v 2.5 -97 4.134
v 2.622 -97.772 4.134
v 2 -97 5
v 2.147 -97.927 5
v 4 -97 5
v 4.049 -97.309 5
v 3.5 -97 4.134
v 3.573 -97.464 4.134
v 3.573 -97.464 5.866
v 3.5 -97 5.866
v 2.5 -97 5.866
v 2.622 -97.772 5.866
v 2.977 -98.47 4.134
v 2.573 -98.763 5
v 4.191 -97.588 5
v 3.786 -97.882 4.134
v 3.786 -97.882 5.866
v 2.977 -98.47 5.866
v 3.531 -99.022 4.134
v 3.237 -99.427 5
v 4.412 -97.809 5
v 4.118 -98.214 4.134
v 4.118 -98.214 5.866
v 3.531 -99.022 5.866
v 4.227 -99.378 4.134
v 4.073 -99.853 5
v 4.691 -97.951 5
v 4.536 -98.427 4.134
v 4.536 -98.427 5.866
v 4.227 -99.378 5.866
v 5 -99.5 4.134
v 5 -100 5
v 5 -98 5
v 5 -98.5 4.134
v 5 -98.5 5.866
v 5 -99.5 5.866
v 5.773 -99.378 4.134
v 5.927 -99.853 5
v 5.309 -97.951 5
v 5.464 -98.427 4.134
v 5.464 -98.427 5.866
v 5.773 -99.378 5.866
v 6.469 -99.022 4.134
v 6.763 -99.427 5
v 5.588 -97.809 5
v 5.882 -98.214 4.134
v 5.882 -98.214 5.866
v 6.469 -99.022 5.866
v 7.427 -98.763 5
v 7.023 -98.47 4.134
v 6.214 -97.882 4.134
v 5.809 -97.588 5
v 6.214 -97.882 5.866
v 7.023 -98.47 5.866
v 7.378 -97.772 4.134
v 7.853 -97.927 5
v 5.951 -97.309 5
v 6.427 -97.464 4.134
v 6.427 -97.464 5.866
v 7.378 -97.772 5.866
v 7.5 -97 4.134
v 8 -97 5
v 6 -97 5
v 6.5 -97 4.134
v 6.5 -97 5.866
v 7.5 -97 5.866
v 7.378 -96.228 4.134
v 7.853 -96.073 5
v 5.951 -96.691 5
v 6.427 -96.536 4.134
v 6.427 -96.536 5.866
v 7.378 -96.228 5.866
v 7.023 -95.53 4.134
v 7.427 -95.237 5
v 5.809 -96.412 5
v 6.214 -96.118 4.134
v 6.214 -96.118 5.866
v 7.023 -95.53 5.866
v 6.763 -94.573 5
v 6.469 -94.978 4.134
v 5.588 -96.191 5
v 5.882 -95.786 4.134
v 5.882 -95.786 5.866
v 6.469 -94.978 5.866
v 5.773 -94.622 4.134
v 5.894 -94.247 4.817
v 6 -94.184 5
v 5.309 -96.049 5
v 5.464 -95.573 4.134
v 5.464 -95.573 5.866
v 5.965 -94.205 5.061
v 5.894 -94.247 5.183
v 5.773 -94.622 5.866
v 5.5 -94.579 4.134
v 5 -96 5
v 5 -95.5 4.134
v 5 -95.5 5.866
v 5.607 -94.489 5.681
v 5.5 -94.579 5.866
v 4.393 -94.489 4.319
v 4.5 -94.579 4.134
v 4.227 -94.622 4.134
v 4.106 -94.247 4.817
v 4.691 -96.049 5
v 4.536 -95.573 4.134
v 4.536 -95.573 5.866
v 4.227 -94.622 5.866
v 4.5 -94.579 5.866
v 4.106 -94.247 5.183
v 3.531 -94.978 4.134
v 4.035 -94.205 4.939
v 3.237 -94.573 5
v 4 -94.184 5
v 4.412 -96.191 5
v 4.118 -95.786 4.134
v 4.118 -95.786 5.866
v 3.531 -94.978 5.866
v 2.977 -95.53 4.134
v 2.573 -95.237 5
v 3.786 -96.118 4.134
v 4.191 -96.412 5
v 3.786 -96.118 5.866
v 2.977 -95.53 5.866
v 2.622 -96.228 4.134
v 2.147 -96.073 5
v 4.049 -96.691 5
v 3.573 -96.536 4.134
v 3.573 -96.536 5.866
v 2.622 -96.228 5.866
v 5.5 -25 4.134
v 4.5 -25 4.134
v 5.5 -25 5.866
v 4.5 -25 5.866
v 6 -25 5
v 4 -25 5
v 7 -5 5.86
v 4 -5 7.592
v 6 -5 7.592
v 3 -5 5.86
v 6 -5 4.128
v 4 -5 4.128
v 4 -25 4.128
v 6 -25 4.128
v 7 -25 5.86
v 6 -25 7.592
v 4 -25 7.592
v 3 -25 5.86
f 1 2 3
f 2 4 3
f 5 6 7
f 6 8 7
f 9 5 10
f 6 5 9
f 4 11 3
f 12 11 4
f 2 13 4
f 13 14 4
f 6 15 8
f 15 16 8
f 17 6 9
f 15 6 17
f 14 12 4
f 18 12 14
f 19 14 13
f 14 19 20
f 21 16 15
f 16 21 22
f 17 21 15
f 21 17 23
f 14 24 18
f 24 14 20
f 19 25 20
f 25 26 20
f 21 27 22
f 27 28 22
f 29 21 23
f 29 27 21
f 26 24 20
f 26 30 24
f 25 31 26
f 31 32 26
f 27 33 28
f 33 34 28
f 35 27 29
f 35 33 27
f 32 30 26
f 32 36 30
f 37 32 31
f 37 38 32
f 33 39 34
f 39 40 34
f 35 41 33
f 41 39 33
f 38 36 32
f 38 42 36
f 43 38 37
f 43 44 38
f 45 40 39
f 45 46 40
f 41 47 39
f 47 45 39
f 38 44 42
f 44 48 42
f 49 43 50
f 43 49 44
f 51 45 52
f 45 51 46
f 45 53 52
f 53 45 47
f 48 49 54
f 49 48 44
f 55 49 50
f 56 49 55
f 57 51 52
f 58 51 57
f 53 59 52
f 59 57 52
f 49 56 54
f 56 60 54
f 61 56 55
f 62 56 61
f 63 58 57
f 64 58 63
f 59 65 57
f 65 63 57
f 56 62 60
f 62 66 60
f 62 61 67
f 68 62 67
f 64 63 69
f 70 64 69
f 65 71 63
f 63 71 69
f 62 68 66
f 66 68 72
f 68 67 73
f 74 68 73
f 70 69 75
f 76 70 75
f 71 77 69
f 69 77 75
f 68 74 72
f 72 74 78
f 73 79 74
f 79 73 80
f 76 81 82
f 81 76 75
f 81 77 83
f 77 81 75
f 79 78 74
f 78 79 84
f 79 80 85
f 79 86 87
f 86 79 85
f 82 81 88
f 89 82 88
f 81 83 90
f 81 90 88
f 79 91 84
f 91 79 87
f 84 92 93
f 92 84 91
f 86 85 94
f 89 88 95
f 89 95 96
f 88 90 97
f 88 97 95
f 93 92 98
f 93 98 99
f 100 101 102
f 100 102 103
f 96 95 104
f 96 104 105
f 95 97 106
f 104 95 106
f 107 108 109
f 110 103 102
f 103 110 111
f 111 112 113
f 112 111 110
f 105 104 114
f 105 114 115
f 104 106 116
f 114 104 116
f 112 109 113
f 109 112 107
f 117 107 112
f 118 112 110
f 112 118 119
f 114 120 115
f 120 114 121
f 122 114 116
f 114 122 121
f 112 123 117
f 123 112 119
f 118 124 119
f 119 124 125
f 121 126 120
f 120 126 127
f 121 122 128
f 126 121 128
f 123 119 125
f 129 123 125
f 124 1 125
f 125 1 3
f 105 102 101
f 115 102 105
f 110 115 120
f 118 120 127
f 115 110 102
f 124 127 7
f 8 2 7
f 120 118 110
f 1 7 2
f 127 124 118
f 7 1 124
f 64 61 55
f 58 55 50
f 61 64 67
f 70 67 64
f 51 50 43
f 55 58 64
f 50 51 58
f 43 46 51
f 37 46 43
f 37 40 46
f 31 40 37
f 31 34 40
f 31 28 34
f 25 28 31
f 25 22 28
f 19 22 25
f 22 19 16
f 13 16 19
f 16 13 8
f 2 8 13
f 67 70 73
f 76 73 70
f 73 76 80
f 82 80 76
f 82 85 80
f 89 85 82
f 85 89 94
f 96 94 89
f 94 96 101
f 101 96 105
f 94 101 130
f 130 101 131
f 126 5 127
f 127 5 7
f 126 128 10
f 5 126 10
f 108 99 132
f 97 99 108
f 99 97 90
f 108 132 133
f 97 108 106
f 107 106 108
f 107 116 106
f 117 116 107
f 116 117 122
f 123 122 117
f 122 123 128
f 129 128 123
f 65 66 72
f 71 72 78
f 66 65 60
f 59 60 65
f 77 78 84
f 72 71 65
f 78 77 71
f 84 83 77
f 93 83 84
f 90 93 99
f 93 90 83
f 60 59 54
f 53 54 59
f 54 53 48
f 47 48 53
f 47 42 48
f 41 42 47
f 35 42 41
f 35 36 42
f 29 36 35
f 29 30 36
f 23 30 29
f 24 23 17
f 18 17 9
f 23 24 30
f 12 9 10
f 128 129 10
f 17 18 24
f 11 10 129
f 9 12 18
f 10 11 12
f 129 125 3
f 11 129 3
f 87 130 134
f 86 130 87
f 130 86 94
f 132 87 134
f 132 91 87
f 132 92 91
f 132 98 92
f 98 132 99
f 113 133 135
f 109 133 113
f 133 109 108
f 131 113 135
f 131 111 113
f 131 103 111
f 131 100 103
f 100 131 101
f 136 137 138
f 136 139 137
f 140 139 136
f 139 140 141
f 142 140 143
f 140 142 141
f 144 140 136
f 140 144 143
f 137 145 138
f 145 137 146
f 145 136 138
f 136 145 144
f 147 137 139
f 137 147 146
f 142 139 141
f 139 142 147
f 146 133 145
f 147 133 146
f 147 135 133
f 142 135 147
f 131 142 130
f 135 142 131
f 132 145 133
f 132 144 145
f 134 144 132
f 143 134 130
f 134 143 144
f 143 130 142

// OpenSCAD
module bottom() { 
    translate([0, 0.86, 0]) cylinder(d=4, h=20, $fn=6);
}


module middle() {
     cylinder(d=2, h=90, $fn=6);
}

module top() {
  translate([0,0,92])
  rotate([90,0,0])

  rotate_extrude(convexity=5, $fn=20) 
    translate([2, 0, 0]) 
    circle(d=2, $fn=6);
}

translate([5,-5,5])
rotate([90,0,0]) {
top();
middle();
bottom();
}
